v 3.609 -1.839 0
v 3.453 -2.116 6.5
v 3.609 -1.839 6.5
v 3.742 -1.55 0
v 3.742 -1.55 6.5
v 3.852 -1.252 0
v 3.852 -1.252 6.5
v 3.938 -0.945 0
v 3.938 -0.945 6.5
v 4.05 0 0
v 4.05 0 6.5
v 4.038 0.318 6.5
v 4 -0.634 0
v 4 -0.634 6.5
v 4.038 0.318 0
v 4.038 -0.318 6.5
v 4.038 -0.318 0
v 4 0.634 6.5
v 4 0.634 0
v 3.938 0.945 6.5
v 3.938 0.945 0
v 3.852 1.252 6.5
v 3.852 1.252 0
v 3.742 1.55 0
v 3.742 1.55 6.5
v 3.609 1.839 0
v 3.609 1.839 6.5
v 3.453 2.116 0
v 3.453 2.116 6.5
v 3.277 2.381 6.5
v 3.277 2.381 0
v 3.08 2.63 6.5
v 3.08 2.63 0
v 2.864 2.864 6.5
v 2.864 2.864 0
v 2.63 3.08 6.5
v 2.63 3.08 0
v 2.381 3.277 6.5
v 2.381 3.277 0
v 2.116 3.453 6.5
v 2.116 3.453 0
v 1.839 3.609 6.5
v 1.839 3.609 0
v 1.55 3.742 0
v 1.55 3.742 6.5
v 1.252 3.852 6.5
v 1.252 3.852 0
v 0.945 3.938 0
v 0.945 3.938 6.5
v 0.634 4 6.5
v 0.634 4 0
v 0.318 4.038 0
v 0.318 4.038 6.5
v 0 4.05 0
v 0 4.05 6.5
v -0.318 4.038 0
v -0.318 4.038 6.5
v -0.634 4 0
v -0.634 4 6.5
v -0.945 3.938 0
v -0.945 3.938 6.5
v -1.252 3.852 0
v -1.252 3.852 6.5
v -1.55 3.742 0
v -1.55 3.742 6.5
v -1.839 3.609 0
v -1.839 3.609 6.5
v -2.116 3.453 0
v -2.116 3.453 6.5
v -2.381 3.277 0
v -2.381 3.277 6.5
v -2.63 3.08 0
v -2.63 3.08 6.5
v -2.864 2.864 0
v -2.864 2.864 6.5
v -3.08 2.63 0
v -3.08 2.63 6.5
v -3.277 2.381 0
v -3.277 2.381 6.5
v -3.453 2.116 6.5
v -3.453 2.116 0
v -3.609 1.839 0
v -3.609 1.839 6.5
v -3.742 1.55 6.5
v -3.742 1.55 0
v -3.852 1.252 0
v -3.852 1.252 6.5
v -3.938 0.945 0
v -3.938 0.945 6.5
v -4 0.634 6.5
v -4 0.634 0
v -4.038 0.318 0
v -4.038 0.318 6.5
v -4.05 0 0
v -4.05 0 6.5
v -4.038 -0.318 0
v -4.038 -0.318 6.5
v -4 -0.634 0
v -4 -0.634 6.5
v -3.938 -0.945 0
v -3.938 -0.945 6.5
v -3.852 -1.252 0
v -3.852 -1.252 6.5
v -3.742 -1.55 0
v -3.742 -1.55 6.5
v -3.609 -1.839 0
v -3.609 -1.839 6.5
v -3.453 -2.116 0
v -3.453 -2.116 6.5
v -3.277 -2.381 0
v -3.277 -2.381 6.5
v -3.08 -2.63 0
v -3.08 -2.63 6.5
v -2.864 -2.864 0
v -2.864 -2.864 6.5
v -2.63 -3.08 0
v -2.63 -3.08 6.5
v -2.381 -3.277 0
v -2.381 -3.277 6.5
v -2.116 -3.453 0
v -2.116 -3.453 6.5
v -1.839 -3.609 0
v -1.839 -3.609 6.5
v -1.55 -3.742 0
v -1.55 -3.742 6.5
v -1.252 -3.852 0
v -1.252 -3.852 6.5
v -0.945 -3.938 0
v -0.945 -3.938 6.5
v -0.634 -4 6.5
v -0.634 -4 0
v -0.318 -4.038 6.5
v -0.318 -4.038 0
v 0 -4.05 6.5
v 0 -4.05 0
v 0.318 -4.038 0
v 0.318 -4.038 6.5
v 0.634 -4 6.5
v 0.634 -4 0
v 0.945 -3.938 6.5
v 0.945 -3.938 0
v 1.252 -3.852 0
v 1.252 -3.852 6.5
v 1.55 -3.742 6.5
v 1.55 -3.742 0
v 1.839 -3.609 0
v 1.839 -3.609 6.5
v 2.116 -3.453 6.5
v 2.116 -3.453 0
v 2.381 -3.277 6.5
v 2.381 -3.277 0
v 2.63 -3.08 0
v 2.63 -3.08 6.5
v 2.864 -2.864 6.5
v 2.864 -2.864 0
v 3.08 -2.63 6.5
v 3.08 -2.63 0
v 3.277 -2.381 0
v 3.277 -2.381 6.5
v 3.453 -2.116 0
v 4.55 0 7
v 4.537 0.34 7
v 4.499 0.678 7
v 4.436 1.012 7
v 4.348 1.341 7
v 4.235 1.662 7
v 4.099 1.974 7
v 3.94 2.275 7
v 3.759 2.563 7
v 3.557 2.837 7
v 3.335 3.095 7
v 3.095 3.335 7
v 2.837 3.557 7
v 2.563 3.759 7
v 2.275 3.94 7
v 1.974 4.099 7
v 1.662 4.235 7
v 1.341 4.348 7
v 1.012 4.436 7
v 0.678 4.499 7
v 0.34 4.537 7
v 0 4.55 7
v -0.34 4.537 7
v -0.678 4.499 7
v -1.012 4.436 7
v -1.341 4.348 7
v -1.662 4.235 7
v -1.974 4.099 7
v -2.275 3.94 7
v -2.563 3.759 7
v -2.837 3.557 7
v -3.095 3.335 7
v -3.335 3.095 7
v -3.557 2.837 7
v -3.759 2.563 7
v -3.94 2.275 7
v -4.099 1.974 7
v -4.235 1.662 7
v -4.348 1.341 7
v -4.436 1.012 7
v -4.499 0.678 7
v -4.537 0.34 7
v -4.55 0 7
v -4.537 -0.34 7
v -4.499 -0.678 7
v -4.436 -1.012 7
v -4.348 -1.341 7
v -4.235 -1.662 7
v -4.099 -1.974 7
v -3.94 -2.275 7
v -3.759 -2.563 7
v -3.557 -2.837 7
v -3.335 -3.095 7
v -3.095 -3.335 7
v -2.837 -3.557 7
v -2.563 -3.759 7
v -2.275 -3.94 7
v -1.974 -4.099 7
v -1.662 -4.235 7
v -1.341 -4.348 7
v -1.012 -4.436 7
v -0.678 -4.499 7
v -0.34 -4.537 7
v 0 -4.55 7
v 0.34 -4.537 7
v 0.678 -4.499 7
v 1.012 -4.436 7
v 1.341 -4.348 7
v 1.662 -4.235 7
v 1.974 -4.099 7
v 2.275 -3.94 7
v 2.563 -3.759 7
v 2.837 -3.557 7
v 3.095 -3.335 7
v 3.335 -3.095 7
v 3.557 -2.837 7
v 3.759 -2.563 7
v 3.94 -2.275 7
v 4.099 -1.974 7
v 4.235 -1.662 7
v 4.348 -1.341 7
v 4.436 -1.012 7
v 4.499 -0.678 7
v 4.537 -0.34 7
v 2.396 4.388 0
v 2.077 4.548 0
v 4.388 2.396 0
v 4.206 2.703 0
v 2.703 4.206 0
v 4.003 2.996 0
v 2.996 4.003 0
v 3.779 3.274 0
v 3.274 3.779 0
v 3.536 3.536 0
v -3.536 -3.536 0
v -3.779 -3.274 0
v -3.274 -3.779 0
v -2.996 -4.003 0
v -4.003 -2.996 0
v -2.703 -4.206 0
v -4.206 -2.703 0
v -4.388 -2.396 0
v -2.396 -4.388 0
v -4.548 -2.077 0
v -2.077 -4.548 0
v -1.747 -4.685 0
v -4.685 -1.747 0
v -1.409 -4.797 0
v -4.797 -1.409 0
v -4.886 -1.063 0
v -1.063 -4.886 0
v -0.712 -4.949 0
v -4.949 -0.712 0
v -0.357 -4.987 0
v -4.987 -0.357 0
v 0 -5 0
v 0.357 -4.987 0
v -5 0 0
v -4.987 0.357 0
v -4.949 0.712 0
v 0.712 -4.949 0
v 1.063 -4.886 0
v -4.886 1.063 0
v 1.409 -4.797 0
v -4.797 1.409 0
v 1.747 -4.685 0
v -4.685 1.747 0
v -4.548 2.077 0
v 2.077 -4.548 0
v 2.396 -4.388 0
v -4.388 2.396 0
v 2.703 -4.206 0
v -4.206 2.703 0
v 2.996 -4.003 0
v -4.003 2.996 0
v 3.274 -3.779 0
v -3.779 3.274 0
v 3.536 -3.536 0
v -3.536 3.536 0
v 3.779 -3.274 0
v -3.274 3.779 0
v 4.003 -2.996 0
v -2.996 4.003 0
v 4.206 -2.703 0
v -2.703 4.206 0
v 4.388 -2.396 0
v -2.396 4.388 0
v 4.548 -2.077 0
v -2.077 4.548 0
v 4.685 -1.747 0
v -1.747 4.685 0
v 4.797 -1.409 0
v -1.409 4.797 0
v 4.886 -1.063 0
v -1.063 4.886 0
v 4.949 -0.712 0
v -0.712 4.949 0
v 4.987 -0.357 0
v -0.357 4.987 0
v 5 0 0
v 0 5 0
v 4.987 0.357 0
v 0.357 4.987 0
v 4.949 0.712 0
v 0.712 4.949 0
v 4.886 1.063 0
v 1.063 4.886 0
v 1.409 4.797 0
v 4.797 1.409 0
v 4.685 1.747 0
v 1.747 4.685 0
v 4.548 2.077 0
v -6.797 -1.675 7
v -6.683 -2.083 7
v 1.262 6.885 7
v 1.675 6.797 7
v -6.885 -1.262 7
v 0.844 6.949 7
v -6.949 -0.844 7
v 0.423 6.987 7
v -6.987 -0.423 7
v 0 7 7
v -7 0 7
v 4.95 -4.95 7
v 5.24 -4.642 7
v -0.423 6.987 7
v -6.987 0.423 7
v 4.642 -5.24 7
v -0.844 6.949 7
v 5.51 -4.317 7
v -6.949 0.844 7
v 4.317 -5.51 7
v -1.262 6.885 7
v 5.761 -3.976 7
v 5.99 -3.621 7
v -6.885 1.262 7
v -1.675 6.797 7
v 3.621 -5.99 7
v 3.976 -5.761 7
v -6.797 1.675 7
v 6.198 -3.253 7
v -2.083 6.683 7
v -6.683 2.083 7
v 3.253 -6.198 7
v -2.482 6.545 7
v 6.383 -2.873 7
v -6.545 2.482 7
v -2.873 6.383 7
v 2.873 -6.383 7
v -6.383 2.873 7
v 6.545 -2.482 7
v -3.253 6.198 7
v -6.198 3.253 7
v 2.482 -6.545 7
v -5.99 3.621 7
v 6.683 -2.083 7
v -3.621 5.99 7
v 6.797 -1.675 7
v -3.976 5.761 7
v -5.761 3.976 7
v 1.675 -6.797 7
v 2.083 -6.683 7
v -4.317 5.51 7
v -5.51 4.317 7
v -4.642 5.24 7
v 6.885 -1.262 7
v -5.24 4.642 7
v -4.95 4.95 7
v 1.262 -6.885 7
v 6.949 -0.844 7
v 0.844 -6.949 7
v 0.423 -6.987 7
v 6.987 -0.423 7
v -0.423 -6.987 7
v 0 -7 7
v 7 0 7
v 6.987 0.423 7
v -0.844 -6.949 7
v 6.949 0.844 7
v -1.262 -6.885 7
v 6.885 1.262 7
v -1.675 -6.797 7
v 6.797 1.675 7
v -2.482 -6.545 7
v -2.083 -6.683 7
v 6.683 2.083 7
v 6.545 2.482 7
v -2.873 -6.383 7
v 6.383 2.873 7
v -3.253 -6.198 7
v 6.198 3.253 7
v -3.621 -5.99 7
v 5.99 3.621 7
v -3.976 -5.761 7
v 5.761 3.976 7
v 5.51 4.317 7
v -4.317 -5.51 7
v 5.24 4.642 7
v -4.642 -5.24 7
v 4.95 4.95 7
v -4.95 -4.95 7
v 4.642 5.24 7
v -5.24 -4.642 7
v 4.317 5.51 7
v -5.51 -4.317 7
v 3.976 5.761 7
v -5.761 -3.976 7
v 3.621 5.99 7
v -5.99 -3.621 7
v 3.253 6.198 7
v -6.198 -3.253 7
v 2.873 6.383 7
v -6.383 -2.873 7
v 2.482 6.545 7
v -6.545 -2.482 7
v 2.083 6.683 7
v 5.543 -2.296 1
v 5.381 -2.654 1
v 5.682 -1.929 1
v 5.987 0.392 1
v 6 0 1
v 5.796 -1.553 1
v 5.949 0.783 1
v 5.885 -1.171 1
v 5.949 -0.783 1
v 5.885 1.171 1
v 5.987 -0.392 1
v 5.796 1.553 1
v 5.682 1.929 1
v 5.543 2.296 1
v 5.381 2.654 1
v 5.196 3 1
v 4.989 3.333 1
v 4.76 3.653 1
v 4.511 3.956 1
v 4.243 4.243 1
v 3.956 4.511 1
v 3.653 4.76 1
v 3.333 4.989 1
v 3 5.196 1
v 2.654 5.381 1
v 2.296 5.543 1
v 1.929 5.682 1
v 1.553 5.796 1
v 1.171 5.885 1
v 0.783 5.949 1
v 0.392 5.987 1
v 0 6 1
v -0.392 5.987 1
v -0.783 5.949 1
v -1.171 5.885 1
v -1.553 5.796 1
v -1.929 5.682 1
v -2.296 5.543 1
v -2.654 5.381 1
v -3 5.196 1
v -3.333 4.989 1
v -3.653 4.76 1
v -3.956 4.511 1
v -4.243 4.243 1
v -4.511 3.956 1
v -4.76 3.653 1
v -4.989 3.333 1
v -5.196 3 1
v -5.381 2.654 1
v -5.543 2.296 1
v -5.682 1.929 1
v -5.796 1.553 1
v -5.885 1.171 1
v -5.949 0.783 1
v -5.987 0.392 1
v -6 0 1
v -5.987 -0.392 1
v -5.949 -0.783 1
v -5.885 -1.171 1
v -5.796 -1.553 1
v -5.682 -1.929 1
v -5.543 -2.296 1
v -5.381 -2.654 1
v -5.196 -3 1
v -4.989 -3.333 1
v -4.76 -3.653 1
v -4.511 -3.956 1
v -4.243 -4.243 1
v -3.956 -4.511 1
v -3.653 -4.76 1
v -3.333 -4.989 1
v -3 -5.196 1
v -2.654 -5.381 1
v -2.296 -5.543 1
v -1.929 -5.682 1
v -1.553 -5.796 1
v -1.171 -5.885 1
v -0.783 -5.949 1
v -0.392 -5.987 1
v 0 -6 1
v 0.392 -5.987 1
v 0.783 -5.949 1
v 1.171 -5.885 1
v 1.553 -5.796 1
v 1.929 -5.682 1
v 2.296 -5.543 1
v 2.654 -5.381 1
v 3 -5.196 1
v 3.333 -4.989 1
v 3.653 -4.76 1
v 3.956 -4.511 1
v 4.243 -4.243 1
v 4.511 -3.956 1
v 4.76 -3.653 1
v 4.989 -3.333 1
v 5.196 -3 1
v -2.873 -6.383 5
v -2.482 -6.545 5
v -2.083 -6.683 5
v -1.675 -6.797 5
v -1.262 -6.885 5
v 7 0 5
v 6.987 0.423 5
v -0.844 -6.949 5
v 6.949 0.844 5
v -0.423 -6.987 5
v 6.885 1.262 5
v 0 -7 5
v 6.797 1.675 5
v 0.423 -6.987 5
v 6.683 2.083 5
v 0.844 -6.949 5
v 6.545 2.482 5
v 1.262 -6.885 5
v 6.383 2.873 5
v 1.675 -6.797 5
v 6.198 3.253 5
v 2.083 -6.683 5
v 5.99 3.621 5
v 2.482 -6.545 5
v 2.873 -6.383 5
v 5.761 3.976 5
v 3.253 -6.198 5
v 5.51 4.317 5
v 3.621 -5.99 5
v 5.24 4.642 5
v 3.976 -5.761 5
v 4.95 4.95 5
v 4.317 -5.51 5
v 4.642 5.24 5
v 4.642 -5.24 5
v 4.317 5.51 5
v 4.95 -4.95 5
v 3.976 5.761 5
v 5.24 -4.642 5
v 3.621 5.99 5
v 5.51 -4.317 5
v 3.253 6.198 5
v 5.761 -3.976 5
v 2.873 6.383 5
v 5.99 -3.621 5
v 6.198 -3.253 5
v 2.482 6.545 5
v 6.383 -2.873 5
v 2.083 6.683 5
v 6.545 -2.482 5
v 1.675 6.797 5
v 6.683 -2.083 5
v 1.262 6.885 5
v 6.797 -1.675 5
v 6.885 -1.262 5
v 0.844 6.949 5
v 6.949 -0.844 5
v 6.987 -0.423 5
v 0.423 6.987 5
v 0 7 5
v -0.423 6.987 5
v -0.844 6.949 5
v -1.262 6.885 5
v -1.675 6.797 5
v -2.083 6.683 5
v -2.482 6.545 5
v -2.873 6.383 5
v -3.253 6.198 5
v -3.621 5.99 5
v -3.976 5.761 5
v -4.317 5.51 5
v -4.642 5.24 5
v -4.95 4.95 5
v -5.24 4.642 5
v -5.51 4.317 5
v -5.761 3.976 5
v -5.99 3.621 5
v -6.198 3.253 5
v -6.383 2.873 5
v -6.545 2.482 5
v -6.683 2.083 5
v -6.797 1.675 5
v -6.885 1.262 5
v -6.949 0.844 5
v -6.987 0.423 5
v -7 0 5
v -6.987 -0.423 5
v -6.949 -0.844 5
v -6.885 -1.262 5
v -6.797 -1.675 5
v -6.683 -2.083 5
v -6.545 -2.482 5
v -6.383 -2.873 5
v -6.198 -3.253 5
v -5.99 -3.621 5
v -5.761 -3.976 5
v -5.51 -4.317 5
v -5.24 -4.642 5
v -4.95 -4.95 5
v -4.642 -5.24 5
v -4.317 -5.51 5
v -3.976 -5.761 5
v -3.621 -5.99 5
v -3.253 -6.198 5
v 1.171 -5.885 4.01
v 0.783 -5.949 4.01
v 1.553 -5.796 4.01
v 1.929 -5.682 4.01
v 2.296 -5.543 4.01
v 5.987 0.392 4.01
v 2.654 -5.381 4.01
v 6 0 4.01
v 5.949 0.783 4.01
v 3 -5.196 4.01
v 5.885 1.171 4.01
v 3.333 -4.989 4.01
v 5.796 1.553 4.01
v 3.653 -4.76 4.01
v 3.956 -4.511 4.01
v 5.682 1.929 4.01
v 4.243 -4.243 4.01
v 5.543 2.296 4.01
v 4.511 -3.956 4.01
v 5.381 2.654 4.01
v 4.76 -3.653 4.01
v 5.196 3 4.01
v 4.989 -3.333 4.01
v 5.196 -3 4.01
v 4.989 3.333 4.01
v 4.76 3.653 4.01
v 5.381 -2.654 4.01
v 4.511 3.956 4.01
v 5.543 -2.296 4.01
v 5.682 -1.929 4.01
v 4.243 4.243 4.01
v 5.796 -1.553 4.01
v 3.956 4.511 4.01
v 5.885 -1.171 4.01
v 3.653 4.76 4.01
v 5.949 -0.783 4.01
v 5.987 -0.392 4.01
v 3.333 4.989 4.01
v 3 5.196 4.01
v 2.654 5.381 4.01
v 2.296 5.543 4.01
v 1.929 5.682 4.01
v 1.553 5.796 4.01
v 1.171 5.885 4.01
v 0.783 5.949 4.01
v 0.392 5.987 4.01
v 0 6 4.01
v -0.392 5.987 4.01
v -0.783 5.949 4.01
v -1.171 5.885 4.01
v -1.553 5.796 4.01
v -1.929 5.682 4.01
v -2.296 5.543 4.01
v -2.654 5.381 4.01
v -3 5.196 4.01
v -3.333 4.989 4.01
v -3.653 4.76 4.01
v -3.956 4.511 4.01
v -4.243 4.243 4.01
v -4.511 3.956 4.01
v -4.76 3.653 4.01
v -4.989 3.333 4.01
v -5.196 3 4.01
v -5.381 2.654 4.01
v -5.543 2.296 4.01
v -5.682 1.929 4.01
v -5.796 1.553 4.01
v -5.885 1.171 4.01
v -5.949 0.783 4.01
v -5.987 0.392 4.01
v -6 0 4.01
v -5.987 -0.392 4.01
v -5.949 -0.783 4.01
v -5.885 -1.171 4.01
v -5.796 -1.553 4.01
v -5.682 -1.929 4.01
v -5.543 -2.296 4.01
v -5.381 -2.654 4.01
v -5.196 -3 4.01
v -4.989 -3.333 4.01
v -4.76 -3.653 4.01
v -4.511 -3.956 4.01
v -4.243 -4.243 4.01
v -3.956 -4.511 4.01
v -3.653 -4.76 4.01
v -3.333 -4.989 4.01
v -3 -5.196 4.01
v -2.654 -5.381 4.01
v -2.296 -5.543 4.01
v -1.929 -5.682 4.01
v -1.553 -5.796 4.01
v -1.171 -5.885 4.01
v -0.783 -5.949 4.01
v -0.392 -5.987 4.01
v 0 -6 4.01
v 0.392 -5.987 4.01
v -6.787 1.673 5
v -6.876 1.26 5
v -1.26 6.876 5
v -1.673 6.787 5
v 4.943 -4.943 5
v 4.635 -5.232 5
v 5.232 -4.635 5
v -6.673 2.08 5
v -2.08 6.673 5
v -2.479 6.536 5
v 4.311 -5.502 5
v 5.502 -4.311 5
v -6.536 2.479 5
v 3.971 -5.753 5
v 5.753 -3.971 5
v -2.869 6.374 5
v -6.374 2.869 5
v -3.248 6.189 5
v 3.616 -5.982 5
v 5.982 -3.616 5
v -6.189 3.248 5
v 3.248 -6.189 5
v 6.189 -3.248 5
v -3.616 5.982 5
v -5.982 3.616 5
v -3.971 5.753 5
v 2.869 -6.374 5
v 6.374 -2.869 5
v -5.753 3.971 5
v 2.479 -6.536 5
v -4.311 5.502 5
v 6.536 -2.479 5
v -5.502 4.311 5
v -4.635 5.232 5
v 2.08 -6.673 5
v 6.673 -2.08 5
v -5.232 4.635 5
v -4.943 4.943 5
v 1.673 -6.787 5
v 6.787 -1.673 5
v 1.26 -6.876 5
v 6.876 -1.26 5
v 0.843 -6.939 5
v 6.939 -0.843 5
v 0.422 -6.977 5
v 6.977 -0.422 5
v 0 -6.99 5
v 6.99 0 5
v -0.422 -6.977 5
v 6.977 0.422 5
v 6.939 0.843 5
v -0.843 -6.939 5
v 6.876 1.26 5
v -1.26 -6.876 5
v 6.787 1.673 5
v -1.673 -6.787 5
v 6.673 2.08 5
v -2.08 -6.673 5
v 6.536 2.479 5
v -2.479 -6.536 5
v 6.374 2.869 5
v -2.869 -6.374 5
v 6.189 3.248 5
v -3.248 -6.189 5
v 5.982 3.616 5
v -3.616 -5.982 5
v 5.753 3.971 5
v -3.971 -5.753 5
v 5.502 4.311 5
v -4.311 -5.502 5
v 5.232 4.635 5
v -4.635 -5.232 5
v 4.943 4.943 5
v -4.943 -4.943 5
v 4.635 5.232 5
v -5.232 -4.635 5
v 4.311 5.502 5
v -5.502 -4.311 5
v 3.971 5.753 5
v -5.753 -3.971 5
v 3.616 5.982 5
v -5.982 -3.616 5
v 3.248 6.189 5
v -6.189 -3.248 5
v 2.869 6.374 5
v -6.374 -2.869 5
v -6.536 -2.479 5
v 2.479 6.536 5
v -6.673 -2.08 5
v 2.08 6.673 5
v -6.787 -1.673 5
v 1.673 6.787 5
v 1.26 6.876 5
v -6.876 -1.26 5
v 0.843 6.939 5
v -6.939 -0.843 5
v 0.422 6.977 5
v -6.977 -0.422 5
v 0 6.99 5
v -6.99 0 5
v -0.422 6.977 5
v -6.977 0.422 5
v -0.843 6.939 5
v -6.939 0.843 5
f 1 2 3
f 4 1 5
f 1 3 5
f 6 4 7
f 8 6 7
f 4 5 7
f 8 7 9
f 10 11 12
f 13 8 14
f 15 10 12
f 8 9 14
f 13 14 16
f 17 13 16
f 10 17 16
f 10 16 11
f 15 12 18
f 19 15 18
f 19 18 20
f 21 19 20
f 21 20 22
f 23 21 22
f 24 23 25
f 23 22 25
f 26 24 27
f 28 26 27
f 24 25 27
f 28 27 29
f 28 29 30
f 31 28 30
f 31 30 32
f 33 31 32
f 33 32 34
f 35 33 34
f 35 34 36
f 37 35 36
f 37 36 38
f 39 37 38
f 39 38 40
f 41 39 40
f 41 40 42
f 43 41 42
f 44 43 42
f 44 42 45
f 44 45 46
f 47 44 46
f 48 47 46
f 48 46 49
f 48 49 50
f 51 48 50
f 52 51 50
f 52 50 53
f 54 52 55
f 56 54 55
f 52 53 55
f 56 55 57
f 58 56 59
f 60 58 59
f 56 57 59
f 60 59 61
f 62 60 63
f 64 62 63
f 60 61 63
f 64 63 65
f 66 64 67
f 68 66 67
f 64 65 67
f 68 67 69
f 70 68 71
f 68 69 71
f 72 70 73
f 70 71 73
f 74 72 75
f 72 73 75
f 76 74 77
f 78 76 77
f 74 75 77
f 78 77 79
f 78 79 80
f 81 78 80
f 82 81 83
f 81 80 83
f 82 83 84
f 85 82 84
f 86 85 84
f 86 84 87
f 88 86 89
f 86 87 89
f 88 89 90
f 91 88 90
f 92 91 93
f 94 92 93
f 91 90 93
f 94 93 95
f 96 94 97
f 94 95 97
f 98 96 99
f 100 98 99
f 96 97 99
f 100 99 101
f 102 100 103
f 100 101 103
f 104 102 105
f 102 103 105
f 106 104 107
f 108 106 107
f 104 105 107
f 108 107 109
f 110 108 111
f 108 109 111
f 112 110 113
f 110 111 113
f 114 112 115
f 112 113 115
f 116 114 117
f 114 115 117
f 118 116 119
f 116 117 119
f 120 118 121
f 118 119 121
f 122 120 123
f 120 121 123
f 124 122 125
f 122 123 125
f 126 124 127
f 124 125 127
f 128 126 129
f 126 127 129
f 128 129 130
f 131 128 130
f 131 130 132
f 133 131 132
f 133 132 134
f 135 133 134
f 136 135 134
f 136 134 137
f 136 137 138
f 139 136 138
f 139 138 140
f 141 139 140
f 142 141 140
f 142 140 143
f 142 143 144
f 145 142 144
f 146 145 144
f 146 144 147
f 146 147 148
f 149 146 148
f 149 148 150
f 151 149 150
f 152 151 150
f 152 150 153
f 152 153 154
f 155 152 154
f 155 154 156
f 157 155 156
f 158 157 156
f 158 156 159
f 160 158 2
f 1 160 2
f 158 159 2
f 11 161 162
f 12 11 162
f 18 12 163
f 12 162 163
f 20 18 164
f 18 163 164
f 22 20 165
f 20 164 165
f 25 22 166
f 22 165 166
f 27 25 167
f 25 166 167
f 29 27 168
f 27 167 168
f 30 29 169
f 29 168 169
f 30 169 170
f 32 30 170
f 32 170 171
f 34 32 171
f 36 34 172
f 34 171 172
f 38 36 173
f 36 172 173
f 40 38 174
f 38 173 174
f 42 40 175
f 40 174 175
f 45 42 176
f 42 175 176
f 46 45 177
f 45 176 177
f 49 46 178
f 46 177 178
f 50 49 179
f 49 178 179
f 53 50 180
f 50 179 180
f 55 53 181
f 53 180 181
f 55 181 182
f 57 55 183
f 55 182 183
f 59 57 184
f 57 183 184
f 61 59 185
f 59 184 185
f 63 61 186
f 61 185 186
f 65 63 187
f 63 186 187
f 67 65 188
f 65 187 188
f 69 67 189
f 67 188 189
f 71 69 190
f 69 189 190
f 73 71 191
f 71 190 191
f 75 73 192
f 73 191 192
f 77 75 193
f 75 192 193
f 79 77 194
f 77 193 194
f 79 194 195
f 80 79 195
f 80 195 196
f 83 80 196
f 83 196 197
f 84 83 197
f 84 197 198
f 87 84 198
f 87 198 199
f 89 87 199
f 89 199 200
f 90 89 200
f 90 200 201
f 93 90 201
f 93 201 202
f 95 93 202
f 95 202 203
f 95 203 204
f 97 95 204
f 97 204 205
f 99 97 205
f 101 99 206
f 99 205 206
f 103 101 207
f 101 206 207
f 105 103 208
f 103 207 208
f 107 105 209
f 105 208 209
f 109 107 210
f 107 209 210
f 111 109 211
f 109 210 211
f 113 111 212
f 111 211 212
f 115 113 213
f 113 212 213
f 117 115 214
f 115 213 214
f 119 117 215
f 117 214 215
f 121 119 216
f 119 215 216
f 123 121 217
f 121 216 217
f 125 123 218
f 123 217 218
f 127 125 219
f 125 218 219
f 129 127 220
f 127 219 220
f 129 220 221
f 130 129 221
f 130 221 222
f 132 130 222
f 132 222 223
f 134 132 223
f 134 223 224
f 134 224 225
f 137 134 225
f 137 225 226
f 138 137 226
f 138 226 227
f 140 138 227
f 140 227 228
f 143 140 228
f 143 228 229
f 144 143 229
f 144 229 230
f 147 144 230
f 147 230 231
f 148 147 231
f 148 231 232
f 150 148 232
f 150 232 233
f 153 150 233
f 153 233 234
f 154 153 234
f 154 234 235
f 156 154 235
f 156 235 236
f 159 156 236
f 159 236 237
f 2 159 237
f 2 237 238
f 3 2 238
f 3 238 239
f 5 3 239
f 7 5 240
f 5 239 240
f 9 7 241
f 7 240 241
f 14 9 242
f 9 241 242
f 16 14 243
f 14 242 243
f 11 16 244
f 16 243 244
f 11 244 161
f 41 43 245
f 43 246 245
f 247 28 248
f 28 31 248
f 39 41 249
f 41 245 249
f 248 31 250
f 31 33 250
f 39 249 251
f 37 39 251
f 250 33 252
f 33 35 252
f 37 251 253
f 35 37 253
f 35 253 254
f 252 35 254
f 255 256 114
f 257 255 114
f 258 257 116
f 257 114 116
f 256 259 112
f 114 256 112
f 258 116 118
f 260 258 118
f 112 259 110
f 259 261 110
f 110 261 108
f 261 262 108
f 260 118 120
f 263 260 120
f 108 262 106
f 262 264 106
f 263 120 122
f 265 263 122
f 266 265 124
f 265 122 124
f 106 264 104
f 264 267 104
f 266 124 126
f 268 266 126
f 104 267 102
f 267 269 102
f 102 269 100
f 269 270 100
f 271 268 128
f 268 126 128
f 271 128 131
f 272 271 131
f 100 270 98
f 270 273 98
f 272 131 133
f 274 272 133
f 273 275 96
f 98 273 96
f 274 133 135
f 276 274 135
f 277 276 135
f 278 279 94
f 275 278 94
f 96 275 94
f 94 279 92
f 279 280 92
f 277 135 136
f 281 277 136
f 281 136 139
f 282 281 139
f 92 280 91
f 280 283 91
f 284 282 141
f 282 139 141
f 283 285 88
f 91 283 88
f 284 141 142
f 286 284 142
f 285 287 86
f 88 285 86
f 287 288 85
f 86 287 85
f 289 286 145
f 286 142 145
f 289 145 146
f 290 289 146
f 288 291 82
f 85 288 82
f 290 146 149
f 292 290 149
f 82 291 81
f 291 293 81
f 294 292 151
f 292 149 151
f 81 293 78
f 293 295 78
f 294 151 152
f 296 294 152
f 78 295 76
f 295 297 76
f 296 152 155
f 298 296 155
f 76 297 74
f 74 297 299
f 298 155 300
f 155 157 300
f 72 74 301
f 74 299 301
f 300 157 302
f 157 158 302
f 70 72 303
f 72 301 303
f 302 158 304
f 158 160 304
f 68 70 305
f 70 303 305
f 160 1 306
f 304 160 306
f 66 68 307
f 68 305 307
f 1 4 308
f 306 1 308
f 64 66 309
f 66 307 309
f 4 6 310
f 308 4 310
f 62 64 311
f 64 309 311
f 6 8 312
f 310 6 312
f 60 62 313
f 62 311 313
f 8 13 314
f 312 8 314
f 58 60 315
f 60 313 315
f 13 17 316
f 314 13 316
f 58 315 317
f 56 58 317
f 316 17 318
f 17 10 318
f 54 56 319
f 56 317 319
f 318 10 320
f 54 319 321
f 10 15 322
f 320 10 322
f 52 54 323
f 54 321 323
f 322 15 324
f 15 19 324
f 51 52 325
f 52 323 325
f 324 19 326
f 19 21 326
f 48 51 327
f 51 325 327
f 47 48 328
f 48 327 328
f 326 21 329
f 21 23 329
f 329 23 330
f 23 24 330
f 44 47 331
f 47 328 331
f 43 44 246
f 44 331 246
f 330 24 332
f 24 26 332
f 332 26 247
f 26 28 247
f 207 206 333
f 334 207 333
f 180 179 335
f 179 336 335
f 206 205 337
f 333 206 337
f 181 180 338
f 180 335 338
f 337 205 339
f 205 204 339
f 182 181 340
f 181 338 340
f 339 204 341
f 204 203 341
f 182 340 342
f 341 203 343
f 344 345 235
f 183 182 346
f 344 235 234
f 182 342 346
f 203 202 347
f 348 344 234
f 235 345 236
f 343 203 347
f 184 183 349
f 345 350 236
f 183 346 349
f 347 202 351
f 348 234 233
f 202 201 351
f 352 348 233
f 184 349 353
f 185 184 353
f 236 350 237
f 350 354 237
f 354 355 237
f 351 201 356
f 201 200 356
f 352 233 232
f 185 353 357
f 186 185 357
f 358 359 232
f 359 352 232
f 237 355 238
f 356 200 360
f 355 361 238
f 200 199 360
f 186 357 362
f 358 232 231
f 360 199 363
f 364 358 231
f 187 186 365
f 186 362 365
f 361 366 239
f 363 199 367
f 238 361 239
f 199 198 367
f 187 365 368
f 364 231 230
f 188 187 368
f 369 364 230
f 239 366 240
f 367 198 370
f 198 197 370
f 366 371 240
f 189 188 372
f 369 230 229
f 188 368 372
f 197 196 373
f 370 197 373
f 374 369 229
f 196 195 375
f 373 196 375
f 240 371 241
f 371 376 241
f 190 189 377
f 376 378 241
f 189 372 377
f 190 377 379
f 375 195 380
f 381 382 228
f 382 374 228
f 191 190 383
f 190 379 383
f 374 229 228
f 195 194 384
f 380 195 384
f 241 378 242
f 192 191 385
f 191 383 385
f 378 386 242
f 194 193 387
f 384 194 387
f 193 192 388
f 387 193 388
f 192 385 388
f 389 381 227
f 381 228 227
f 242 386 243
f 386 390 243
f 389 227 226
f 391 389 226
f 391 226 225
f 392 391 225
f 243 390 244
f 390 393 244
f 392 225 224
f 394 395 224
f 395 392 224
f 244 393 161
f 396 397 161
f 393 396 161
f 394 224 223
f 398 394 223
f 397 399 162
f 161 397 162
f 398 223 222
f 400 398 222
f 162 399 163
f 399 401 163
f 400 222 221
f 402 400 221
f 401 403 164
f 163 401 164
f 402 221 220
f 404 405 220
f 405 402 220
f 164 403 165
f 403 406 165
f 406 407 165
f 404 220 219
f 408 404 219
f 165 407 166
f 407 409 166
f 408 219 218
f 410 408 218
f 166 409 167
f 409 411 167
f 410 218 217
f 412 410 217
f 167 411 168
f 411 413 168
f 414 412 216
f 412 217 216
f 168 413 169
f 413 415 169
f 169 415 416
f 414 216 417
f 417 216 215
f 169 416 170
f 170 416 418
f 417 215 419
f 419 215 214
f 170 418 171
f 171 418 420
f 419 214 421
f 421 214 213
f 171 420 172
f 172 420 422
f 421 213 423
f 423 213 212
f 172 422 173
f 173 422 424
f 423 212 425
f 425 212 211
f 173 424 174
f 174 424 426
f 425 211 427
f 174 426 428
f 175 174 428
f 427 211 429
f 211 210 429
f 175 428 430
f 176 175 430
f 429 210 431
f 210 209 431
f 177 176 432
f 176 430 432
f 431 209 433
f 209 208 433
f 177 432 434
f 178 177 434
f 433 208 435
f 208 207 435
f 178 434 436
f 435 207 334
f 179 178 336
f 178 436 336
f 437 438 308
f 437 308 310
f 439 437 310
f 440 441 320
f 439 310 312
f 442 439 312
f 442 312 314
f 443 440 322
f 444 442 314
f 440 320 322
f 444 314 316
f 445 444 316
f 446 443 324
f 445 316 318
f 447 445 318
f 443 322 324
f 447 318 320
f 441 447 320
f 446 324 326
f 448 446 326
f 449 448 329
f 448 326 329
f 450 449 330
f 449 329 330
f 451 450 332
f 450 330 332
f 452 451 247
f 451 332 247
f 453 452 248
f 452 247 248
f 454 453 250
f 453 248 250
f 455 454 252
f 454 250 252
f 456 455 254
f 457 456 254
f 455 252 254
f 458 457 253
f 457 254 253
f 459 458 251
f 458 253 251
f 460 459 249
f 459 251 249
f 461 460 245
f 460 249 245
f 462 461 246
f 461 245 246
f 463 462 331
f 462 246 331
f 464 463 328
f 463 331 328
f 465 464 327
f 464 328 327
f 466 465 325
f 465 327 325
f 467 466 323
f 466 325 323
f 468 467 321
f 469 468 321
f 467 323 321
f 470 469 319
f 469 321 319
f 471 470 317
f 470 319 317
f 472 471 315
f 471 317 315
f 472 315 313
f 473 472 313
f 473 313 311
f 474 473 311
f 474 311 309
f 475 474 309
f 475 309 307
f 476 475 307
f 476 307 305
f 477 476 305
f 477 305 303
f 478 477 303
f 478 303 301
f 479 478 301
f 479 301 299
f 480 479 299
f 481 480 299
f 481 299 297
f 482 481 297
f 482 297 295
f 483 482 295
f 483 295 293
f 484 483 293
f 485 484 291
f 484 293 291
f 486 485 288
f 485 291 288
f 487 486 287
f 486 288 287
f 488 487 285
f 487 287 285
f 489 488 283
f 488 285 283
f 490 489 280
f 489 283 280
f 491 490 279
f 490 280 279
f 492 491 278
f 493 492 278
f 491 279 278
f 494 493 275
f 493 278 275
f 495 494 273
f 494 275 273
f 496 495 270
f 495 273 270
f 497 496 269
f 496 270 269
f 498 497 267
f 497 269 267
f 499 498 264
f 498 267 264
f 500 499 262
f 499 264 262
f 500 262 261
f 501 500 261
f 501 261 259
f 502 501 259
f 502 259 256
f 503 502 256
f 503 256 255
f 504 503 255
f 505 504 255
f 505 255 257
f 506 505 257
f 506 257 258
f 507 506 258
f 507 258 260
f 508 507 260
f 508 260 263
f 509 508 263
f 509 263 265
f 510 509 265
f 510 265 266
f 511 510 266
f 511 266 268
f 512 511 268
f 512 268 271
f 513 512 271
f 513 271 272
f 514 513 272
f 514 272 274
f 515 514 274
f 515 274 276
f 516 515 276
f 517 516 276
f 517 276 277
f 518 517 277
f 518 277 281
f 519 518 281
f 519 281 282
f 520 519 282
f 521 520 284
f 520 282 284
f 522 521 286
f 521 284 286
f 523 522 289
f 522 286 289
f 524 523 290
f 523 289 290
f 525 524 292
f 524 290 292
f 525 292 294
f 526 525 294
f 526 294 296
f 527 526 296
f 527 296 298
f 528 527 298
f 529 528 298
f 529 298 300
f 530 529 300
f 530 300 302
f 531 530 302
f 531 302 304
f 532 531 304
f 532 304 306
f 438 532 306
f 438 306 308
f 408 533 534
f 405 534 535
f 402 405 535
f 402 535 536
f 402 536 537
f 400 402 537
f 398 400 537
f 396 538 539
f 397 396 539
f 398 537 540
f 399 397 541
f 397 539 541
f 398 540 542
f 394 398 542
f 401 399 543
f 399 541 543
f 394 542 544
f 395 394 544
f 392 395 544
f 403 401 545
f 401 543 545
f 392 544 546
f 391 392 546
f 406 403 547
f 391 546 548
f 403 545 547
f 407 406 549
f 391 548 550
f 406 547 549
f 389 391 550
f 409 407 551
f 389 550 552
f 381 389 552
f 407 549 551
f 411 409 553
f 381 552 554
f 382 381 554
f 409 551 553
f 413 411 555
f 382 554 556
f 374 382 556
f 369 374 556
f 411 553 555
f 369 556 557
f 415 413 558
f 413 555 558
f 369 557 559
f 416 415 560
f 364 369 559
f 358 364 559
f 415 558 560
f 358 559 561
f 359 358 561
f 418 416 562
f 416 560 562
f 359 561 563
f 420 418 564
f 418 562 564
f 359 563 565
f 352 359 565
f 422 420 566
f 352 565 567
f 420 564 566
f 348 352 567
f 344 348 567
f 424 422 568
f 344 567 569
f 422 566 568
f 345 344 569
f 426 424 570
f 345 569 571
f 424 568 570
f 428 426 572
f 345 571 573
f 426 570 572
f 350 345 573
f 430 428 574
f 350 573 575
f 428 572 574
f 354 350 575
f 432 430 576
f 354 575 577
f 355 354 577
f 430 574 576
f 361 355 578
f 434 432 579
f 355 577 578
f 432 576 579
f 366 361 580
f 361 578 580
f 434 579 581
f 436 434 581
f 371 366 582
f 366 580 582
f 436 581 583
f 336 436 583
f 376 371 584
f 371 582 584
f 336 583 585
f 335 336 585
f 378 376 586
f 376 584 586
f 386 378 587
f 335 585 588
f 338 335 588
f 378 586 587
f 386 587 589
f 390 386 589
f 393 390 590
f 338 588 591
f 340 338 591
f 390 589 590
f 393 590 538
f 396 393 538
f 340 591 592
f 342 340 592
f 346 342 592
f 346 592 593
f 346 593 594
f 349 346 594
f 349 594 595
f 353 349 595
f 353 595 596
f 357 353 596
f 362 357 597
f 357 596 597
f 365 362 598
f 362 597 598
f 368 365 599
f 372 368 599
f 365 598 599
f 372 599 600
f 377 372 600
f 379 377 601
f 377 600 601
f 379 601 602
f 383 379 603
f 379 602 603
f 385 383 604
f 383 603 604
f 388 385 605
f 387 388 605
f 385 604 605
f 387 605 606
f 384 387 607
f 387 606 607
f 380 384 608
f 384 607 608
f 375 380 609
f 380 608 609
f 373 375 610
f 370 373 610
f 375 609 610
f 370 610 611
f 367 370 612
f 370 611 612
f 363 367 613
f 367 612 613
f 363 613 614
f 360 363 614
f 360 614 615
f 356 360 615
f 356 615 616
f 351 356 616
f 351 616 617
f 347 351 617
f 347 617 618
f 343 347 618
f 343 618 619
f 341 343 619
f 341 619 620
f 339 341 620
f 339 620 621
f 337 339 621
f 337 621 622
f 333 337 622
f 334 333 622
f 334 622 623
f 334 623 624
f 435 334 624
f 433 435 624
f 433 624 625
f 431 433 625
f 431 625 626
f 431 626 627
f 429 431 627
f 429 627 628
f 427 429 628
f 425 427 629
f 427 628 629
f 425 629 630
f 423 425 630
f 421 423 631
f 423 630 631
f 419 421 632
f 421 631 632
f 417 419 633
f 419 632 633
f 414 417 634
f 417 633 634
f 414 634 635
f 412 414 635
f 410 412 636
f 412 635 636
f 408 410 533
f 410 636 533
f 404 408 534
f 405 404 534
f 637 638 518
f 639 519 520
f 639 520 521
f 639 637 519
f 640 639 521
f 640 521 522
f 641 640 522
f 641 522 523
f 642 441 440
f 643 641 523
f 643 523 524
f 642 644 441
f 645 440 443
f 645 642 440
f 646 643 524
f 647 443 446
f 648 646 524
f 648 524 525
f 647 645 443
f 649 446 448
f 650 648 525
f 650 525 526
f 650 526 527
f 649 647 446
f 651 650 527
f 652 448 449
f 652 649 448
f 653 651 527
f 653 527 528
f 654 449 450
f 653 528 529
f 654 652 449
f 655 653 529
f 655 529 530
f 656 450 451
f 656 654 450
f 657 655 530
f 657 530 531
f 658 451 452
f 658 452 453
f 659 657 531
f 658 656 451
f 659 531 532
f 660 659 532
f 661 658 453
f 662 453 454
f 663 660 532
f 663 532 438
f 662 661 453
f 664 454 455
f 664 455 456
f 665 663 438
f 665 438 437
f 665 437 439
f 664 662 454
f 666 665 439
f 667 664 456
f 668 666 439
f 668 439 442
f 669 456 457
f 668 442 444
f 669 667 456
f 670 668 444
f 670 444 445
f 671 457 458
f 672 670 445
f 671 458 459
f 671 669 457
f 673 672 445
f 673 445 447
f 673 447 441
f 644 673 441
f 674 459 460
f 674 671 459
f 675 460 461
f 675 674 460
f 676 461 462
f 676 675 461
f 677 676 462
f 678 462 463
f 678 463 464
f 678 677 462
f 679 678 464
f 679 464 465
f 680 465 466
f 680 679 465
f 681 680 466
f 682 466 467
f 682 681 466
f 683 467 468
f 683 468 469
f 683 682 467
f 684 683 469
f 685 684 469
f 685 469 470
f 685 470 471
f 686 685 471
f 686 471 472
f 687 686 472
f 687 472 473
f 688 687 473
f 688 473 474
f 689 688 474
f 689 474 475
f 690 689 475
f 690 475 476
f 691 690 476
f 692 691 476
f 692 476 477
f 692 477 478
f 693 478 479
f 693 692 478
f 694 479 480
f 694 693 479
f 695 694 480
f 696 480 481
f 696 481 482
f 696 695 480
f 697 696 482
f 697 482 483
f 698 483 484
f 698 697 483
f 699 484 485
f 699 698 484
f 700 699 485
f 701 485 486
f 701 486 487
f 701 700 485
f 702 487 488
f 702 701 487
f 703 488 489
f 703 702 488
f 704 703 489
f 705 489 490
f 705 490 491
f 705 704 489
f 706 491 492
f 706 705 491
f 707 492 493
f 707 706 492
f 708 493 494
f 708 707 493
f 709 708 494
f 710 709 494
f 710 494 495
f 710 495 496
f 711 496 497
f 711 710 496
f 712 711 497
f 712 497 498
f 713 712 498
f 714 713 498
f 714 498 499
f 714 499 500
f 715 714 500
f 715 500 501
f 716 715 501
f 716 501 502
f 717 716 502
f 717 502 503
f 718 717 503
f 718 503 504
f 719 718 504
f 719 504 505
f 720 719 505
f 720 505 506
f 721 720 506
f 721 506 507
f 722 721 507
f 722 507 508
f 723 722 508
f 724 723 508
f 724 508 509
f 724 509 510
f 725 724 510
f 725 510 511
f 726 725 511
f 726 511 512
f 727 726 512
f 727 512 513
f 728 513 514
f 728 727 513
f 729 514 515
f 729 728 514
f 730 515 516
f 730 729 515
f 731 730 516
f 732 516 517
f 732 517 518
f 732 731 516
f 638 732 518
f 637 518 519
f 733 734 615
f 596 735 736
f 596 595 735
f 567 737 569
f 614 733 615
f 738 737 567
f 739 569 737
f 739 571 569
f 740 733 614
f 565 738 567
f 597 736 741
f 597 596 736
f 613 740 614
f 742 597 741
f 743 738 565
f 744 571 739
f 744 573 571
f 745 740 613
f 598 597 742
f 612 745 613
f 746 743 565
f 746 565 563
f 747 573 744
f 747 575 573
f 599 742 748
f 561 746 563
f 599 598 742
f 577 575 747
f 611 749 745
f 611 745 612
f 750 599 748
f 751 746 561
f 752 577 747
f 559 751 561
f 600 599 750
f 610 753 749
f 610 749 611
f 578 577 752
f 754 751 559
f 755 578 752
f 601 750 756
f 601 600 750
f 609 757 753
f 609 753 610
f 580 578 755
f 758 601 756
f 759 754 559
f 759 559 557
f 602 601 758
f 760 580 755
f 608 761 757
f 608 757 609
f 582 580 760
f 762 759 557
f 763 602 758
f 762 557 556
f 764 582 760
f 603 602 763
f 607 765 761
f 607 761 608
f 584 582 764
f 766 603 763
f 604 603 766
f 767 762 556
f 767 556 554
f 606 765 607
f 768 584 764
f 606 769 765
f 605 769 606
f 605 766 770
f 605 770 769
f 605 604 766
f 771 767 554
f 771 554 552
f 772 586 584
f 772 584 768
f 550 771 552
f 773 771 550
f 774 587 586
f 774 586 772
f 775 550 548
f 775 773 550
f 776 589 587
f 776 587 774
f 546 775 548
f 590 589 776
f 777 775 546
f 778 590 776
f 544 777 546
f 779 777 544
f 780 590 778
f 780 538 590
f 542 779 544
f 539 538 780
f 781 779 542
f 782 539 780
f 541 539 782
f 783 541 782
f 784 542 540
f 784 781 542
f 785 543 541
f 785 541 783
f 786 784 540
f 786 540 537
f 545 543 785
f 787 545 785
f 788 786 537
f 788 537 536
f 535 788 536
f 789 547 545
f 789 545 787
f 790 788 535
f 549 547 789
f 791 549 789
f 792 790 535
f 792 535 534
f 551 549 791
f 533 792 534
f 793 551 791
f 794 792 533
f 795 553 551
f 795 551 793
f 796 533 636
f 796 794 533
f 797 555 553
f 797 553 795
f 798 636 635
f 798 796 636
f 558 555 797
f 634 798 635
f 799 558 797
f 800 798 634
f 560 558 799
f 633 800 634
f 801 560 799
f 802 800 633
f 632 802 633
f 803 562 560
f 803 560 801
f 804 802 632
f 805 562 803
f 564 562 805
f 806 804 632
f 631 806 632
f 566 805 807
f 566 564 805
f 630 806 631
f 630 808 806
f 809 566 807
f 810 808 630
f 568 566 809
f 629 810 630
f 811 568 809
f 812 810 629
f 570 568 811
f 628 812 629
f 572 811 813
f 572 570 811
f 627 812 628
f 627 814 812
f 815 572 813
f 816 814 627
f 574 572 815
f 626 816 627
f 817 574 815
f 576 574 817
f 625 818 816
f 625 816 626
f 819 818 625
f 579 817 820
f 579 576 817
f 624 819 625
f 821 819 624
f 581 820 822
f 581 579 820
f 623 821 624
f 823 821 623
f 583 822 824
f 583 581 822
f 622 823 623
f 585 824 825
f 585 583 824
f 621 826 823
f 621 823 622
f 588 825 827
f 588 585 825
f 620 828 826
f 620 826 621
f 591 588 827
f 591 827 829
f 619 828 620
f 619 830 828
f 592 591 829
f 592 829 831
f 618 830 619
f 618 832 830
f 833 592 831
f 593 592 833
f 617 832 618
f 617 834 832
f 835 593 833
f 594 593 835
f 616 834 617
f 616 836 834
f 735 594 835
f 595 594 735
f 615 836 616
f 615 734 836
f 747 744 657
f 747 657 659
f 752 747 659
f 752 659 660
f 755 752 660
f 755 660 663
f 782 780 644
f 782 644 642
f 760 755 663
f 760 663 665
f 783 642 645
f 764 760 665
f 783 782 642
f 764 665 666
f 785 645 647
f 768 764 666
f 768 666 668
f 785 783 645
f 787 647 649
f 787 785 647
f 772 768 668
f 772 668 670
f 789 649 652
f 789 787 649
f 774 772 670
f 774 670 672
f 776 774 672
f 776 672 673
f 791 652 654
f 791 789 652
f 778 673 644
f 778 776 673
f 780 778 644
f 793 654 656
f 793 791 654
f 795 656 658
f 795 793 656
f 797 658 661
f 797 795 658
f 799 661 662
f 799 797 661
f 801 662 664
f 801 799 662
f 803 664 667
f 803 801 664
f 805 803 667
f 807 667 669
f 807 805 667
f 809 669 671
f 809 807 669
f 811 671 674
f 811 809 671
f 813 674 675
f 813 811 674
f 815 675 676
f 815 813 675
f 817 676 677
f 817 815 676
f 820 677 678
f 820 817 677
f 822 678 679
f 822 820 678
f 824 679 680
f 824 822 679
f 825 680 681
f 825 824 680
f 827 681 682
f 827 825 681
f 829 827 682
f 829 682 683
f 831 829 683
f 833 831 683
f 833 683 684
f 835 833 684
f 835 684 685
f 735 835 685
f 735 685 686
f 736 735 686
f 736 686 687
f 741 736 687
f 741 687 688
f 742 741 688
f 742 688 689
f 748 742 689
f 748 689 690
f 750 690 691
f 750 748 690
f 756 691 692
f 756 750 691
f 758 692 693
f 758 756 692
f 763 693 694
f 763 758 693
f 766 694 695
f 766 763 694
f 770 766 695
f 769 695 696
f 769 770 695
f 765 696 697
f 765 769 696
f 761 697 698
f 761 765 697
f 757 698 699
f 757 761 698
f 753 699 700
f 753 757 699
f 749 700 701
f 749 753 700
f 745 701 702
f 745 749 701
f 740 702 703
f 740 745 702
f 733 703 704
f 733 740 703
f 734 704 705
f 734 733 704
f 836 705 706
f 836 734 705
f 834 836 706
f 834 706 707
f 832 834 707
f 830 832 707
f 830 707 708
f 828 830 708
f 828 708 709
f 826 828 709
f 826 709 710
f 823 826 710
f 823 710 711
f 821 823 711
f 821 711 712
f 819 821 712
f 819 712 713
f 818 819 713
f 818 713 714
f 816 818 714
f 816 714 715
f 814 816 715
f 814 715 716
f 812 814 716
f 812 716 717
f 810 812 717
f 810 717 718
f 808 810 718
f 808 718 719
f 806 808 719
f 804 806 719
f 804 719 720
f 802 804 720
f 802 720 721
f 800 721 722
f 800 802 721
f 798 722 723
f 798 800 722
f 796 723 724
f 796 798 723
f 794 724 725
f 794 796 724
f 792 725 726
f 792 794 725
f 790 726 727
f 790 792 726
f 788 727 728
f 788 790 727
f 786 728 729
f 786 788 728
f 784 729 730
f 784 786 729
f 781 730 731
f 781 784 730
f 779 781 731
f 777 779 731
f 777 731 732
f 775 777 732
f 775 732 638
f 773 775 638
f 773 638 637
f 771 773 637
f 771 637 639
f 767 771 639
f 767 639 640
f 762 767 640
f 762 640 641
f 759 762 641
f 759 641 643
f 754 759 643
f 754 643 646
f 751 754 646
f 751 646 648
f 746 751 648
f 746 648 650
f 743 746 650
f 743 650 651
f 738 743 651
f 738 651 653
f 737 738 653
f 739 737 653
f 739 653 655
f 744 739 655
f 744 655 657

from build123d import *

# Parameters (mm, degrees)
CYLINDER001_R     = 4.05
CYLINDER001_DEPTH = 28
CYLINDER_R        = 6
CYLINDER_DEPTH    = 5
SKETCH_R          = 7
PAD_DEPTH         = 2
CHAMFER_SIZE      = 0.99
CHAMFER001_SIZE   = 1
CHAMFER002_SIZE   = 0.5


with BuildPart() as cilindro001:
    # Cylinder001 → Cylinder001 (new body)
    with BuildSketch(Plane.XY.offset(-1)):
        Circle(CYLINDER001_R)
    extrude(amount=CYLINDER001_DEPTH)


with BuildPart() as chamfer002:
    # Cylinder → Cylinder (new body)
    with BuildSketch(Plane.XY):
        Circle(CYLINDER_R)
    extrude(amount=CYLINDER_DEPTH)

    # Sketch → Pad (new body)
    with BuildSketch(Plane.XY.offset(5)):
        Circle(SKETCH_R)
    extrude(amount=PAD_DEPTH)

    # Cut: cut Cilindro001
    add(cilindro001.part, mode=Mode.SUBTRACT)

    # Chamfer
    chamfer_edges = [chamfer002.edges().sort_by_distance(p)[0] for p in [
        (-6, 0, 5),
    ]]
    chamfer(chamfer_edges, length=CHAMFER_SIZE)

    # Chamfer001
    chamfer001_edges = [chamfer002.edges().sort_by_distance(p)[0] for p in [
        (-6, 0, 0),
    ]]
    chamfer(chamfer001_edges, length=CHAMFER001_SIZE)

    # Chamfer002
    chamfer002_edges = [chamfer002.edges().sort_by_distance(p)[0] for p in [
        (-4.05, 0, 7),
    ]]
    chamfer(chamfer002_edges, length=CHAMFER002_SIZE)


solid = chamfer002.part
